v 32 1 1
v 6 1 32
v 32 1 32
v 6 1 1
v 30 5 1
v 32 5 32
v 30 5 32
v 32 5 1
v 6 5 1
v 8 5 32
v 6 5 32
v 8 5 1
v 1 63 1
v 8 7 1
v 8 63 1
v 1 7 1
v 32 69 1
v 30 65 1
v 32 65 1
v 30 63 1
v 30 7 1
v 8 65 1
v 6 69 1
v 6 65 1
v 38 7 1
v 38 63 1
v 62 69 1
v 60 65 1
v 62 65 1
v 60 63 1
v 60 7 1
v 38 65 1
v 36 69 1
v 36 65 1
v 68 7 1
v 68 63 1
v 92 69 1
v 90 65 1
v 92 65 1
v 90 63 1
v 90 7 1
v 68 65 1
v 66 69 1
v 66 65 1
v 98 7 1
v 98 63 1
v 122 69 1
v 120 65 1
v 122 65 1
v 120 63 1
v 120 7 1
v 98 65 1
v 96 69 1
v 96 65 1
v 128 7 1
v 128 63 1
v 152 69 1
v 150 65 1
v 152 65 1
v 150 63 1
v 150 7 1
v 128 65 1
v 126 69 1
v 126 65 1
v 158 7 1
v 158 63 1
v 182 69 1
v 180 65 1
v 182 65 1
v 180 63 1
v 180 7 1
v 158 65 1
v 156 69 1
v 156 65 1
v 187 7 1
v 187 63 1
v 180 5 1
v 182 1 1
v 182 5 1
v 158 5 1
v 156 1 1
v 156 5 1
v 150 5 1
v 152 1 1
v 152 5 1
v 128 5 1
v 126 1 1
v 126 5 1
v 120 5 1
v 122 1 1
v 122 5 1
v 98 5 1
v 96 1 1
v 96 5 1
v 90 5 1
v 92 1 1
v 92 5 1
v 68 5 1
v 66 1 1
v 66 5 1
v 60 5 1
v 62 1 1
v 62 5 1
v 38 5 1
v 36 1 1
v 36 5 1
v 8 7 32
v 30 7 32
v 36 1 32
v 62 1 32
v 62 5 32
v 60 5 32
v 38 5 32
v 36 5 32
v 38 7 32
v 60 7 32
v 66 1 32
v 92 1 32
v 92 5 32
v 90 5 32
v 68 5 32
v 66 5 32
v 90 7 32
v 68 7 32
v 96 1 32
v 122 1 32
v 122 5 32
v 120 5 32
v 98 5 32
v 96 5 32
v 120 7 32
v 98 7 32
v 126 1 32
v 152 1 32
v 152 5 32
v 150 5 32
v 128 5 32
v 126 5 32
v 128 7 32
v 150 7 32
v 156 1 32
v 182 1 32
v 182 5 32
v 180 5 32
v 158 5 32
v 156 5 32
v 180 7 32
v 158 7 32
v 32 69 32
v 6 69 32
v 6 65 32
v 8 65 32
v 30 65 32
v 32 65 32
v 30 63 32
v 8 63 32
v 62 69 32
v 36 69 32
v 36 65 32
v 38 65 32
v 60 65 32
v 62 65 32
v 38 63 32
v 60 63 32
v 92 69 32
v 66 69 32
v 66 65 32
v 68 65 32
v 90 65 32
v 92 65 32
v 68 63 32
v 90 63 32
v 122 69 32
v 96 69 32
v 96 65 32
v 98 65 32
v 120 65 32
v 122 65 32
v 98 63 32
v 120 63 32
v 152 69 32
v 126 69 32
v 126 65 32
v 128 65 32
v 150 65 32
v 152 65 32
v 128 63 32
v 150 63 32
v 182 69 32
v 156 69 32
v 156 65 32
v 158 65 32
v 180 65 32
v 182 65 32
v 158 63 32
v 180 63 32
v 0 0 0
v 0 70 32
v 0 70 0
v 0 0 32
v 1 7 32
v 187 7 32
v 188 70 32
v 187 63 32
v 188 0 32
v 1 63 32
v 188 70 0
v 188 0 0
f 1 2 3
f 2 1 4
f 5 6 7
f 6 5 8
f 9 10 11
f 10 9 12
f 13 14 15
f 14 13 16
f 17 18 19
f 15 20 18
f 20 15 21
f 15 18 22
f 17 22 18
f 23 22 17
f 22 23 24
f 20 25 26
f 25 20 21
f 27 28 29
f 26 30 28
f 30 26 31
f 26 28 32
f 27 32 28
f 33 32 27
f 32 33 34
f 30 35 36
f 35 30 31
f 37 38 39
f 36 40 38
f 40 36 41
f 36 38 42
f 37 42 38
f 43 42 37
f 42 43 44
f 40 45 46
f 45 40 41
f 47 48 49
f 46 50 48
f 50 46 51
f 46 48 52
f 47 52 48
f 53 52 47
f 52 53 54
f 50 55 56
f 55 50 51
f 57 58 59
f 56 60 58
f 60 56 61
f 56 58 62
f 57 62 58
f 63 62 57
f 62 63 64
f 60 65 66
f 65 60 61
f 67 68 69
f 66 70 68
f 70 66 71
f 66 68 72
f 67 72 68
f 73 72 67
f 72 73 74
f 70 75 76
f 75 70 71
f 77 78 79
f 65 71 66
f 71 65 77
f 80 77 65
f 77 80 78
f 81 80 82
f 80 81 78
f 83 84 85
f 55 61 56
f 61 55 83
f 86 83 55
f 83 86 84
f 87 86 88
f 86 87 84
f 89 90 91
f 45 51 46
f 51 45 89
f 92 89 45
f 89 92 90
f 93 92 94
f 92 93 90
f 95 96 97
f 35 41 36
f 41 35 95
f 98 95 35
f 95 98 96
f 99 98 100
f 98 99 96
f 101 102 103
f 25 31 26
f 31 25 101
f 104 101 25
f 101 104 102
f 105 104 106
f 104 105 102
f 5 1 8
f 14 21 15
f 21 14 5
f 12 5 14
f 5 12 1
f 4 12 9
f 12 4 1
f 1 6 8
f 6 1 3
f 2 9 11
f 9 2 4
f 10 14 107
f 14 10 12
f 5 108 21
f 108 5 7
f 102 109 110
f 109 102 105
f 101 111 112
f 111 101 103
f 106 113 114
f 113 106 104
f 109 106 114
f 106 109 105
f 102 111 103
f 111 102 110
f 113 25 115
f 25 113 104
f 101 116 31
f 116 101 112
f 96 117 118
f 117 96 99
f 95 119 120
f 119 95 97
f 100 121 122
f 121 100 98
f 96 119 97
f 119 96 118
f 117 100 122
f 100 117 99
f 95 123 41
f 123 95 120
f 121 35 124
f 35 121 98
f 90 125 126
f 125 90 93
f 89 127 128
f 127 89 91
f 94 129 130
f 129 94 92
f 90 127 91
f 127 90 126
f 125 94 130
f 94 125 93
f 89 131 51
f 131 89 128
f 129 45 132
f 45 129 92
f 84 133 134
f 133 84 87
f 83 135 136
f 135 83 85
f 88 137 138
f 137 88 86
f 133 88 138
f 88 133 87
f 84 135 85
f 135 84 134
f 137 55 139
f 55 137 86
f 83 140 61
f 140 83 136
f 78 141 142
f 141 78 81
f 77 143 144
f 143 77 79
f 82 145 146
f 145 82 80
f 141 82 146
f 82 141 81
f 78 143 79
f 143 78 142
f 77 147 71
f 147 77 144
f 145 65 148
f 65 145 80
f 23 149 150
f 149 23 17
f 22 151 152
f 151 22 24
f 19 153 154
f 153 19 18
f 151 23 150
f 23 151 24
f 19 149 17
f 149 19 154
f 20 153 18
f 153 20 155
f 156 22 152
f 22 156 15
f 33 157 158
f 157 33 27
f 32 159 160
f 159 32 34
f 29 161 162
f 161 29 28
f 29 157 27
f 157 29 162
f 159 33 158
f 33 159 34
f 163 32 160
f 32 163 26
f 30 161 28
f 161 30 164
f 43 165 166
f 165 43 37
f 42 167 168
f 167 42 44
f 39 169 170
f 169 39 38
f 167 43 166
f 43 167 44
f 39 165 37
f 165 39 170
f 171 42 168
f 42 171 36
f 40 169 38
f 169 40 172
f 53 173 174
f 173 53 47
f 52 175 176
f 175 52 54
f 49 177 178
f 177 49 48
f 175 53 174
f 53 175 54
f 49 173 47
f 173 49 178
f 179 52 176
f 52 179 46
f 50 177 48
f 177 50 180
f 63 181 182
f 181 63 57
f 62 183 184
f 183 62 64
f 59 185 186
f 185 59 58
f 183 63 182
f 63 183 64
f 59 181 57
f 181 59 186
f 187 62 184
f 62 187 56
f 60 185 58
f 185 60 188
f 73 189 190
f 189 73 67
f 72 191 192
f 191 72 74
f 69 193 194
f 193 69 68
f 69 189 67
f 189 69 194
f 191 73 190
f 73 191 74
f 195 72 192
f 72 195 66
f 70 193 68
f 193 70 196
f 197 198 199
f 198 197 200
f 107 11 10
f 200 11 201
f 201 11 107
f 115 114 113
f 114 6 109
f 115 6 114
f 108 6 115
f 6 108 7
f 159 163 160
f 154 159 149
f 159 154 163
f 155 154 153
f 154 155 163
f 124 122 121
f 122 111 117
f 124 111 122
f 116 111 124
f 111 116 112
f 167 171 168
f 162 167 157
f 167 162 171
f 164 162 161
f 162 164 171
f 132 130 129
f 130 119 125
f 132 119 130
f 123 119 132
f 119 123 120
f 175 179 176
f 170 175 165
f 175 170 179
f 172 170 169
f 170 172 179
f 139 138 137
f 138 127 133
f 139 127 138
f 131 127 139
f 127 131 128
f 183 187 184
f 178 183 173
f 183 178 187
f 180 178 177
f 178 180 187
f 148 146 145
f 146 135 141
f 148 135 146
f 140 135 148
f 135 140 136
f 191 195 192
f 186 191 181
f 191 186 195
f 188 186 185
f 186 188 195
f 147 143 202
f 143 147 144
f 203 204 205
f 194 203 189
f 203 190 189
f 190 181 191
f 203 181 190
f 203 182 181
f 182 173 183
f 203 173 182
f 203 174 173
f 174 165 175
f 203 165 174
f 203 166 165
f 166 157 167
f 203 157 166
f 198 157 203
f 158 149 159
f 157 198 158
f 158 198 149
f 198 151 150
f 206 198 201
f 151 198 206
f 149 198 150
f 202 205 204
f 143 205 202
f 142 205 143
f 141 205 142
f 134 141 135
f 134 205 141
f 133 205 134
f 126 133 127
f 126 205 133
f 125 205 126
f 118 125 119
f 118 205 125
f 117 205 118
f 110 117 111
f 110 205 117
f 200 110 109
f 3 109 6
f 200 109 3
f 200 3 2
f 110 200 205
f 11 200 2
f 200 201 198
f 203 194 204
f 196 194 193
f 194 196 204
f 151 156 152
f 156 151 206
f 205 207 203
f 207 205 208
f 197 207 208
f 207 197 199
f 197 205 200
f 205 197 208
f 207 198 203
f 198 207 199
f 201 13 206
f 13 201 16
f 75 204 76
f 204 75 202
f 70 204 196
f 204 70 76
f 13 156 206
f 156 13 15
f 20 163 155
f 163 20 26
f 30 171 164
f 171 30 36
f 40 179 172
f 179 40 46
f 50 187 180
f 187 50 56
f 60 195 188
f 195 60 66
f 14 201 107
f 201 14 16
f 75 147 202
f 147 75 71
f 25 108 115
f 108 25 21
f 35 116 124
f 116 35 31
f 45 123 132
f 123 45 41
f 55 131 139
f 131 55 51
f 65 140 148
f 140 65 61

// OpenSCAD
// 208 - 67
BOX_X = 188;
BOX_Y = 70;
BOX_Z = 32;

THICK = 1;
MARGIN = 6;

MODEL_W = 4;
MODEL_L = 26;
MODEL_M = 2;

S_MODEL_W = 4;
S_MODEL_L = 26;
S_MODEL_M = 2;

GAP = 30;

difference() {
    cube(size = [
        BOX_X,
        BOX_Y, 
        BOX_Z]);

    translate([
        THICK, 
        MARGIN + THICK, 
        THICK]) {
            
        cube(size = [
            BOX_X - (THICK * 2),
            BOX_Y - (MARGIN * 2) - (THICK * 2),
            BOX_Z]);
    }


    modelSlot(THICK, -2 - GAP, 90);
    modelSlot(THICK, -2 - GAP * 2, 90);
    modelSlot(THICK, -2 - GAP * 3, 90);
    modelSlot(THICK, -2 - GAP * 4, 90);
    modelSlot(THICK, -2 - GAP * 5, 90);
    modelSlot(THICK, -2 - GAP * 6, 90);

    modelSlot(THICK - BOX_Y, 6, 270);
    modelSlot(THICK - BOX_Y, 6 + GAP, 270);
    modelSlot(THICK - BOX_Y, 6 + GAP * 2, 270);
    modelSlot(THICK - BOX_Y, 6 + GAP * 3, 270);
    modelSlot(THICK - BOX_Y, 6 + GAP * 4, 270);
    modelSlot(THICK - BOX_Y, 6 + GAP * 5, 270);
    
    //modelSlot(90, 0, 0);
    //modelSlot(180, 0, 0);
    //modelSlot(270, 0, 0);
}

//big_modelSlot(THICK - BOX_Y, (BOX_Y / 2) + (BIG_MODEL_L / 2), 270);

module modelSlot(x, y, rot) {
    rotate([0, 0, rot]) {
        translate([x, y, THICK]) {
            cube(size = [
                MODEL_W,
                MODEL_L,
                BOX_Z]);
        }        
        
        translate([x + MODEL_M, y + MODEL_M, THICK]) {
            cube(size = [
                MODEL_W + 2,
                MODEL_L - (MODEL_M * 2),
                BOX_Z]);
        }
    }
}

module smallModelSlot(x, y, rot) {
    rotate([0, 0, rot]) {
        translate([x, y, THICK]) {
            cube(size = [
                MODEL_W,
                MODEL_L,
                BOX_Z]);
        }        
        
        translate([x + S_MODEL_M, y + S_MODEL_M, THICK]) {
            cube(size = [
                S_MODEL_W + 2,
                S_MODEL_L - (S_MODEL_M * 2),
                BOX_Z]);
        }
    }
}
